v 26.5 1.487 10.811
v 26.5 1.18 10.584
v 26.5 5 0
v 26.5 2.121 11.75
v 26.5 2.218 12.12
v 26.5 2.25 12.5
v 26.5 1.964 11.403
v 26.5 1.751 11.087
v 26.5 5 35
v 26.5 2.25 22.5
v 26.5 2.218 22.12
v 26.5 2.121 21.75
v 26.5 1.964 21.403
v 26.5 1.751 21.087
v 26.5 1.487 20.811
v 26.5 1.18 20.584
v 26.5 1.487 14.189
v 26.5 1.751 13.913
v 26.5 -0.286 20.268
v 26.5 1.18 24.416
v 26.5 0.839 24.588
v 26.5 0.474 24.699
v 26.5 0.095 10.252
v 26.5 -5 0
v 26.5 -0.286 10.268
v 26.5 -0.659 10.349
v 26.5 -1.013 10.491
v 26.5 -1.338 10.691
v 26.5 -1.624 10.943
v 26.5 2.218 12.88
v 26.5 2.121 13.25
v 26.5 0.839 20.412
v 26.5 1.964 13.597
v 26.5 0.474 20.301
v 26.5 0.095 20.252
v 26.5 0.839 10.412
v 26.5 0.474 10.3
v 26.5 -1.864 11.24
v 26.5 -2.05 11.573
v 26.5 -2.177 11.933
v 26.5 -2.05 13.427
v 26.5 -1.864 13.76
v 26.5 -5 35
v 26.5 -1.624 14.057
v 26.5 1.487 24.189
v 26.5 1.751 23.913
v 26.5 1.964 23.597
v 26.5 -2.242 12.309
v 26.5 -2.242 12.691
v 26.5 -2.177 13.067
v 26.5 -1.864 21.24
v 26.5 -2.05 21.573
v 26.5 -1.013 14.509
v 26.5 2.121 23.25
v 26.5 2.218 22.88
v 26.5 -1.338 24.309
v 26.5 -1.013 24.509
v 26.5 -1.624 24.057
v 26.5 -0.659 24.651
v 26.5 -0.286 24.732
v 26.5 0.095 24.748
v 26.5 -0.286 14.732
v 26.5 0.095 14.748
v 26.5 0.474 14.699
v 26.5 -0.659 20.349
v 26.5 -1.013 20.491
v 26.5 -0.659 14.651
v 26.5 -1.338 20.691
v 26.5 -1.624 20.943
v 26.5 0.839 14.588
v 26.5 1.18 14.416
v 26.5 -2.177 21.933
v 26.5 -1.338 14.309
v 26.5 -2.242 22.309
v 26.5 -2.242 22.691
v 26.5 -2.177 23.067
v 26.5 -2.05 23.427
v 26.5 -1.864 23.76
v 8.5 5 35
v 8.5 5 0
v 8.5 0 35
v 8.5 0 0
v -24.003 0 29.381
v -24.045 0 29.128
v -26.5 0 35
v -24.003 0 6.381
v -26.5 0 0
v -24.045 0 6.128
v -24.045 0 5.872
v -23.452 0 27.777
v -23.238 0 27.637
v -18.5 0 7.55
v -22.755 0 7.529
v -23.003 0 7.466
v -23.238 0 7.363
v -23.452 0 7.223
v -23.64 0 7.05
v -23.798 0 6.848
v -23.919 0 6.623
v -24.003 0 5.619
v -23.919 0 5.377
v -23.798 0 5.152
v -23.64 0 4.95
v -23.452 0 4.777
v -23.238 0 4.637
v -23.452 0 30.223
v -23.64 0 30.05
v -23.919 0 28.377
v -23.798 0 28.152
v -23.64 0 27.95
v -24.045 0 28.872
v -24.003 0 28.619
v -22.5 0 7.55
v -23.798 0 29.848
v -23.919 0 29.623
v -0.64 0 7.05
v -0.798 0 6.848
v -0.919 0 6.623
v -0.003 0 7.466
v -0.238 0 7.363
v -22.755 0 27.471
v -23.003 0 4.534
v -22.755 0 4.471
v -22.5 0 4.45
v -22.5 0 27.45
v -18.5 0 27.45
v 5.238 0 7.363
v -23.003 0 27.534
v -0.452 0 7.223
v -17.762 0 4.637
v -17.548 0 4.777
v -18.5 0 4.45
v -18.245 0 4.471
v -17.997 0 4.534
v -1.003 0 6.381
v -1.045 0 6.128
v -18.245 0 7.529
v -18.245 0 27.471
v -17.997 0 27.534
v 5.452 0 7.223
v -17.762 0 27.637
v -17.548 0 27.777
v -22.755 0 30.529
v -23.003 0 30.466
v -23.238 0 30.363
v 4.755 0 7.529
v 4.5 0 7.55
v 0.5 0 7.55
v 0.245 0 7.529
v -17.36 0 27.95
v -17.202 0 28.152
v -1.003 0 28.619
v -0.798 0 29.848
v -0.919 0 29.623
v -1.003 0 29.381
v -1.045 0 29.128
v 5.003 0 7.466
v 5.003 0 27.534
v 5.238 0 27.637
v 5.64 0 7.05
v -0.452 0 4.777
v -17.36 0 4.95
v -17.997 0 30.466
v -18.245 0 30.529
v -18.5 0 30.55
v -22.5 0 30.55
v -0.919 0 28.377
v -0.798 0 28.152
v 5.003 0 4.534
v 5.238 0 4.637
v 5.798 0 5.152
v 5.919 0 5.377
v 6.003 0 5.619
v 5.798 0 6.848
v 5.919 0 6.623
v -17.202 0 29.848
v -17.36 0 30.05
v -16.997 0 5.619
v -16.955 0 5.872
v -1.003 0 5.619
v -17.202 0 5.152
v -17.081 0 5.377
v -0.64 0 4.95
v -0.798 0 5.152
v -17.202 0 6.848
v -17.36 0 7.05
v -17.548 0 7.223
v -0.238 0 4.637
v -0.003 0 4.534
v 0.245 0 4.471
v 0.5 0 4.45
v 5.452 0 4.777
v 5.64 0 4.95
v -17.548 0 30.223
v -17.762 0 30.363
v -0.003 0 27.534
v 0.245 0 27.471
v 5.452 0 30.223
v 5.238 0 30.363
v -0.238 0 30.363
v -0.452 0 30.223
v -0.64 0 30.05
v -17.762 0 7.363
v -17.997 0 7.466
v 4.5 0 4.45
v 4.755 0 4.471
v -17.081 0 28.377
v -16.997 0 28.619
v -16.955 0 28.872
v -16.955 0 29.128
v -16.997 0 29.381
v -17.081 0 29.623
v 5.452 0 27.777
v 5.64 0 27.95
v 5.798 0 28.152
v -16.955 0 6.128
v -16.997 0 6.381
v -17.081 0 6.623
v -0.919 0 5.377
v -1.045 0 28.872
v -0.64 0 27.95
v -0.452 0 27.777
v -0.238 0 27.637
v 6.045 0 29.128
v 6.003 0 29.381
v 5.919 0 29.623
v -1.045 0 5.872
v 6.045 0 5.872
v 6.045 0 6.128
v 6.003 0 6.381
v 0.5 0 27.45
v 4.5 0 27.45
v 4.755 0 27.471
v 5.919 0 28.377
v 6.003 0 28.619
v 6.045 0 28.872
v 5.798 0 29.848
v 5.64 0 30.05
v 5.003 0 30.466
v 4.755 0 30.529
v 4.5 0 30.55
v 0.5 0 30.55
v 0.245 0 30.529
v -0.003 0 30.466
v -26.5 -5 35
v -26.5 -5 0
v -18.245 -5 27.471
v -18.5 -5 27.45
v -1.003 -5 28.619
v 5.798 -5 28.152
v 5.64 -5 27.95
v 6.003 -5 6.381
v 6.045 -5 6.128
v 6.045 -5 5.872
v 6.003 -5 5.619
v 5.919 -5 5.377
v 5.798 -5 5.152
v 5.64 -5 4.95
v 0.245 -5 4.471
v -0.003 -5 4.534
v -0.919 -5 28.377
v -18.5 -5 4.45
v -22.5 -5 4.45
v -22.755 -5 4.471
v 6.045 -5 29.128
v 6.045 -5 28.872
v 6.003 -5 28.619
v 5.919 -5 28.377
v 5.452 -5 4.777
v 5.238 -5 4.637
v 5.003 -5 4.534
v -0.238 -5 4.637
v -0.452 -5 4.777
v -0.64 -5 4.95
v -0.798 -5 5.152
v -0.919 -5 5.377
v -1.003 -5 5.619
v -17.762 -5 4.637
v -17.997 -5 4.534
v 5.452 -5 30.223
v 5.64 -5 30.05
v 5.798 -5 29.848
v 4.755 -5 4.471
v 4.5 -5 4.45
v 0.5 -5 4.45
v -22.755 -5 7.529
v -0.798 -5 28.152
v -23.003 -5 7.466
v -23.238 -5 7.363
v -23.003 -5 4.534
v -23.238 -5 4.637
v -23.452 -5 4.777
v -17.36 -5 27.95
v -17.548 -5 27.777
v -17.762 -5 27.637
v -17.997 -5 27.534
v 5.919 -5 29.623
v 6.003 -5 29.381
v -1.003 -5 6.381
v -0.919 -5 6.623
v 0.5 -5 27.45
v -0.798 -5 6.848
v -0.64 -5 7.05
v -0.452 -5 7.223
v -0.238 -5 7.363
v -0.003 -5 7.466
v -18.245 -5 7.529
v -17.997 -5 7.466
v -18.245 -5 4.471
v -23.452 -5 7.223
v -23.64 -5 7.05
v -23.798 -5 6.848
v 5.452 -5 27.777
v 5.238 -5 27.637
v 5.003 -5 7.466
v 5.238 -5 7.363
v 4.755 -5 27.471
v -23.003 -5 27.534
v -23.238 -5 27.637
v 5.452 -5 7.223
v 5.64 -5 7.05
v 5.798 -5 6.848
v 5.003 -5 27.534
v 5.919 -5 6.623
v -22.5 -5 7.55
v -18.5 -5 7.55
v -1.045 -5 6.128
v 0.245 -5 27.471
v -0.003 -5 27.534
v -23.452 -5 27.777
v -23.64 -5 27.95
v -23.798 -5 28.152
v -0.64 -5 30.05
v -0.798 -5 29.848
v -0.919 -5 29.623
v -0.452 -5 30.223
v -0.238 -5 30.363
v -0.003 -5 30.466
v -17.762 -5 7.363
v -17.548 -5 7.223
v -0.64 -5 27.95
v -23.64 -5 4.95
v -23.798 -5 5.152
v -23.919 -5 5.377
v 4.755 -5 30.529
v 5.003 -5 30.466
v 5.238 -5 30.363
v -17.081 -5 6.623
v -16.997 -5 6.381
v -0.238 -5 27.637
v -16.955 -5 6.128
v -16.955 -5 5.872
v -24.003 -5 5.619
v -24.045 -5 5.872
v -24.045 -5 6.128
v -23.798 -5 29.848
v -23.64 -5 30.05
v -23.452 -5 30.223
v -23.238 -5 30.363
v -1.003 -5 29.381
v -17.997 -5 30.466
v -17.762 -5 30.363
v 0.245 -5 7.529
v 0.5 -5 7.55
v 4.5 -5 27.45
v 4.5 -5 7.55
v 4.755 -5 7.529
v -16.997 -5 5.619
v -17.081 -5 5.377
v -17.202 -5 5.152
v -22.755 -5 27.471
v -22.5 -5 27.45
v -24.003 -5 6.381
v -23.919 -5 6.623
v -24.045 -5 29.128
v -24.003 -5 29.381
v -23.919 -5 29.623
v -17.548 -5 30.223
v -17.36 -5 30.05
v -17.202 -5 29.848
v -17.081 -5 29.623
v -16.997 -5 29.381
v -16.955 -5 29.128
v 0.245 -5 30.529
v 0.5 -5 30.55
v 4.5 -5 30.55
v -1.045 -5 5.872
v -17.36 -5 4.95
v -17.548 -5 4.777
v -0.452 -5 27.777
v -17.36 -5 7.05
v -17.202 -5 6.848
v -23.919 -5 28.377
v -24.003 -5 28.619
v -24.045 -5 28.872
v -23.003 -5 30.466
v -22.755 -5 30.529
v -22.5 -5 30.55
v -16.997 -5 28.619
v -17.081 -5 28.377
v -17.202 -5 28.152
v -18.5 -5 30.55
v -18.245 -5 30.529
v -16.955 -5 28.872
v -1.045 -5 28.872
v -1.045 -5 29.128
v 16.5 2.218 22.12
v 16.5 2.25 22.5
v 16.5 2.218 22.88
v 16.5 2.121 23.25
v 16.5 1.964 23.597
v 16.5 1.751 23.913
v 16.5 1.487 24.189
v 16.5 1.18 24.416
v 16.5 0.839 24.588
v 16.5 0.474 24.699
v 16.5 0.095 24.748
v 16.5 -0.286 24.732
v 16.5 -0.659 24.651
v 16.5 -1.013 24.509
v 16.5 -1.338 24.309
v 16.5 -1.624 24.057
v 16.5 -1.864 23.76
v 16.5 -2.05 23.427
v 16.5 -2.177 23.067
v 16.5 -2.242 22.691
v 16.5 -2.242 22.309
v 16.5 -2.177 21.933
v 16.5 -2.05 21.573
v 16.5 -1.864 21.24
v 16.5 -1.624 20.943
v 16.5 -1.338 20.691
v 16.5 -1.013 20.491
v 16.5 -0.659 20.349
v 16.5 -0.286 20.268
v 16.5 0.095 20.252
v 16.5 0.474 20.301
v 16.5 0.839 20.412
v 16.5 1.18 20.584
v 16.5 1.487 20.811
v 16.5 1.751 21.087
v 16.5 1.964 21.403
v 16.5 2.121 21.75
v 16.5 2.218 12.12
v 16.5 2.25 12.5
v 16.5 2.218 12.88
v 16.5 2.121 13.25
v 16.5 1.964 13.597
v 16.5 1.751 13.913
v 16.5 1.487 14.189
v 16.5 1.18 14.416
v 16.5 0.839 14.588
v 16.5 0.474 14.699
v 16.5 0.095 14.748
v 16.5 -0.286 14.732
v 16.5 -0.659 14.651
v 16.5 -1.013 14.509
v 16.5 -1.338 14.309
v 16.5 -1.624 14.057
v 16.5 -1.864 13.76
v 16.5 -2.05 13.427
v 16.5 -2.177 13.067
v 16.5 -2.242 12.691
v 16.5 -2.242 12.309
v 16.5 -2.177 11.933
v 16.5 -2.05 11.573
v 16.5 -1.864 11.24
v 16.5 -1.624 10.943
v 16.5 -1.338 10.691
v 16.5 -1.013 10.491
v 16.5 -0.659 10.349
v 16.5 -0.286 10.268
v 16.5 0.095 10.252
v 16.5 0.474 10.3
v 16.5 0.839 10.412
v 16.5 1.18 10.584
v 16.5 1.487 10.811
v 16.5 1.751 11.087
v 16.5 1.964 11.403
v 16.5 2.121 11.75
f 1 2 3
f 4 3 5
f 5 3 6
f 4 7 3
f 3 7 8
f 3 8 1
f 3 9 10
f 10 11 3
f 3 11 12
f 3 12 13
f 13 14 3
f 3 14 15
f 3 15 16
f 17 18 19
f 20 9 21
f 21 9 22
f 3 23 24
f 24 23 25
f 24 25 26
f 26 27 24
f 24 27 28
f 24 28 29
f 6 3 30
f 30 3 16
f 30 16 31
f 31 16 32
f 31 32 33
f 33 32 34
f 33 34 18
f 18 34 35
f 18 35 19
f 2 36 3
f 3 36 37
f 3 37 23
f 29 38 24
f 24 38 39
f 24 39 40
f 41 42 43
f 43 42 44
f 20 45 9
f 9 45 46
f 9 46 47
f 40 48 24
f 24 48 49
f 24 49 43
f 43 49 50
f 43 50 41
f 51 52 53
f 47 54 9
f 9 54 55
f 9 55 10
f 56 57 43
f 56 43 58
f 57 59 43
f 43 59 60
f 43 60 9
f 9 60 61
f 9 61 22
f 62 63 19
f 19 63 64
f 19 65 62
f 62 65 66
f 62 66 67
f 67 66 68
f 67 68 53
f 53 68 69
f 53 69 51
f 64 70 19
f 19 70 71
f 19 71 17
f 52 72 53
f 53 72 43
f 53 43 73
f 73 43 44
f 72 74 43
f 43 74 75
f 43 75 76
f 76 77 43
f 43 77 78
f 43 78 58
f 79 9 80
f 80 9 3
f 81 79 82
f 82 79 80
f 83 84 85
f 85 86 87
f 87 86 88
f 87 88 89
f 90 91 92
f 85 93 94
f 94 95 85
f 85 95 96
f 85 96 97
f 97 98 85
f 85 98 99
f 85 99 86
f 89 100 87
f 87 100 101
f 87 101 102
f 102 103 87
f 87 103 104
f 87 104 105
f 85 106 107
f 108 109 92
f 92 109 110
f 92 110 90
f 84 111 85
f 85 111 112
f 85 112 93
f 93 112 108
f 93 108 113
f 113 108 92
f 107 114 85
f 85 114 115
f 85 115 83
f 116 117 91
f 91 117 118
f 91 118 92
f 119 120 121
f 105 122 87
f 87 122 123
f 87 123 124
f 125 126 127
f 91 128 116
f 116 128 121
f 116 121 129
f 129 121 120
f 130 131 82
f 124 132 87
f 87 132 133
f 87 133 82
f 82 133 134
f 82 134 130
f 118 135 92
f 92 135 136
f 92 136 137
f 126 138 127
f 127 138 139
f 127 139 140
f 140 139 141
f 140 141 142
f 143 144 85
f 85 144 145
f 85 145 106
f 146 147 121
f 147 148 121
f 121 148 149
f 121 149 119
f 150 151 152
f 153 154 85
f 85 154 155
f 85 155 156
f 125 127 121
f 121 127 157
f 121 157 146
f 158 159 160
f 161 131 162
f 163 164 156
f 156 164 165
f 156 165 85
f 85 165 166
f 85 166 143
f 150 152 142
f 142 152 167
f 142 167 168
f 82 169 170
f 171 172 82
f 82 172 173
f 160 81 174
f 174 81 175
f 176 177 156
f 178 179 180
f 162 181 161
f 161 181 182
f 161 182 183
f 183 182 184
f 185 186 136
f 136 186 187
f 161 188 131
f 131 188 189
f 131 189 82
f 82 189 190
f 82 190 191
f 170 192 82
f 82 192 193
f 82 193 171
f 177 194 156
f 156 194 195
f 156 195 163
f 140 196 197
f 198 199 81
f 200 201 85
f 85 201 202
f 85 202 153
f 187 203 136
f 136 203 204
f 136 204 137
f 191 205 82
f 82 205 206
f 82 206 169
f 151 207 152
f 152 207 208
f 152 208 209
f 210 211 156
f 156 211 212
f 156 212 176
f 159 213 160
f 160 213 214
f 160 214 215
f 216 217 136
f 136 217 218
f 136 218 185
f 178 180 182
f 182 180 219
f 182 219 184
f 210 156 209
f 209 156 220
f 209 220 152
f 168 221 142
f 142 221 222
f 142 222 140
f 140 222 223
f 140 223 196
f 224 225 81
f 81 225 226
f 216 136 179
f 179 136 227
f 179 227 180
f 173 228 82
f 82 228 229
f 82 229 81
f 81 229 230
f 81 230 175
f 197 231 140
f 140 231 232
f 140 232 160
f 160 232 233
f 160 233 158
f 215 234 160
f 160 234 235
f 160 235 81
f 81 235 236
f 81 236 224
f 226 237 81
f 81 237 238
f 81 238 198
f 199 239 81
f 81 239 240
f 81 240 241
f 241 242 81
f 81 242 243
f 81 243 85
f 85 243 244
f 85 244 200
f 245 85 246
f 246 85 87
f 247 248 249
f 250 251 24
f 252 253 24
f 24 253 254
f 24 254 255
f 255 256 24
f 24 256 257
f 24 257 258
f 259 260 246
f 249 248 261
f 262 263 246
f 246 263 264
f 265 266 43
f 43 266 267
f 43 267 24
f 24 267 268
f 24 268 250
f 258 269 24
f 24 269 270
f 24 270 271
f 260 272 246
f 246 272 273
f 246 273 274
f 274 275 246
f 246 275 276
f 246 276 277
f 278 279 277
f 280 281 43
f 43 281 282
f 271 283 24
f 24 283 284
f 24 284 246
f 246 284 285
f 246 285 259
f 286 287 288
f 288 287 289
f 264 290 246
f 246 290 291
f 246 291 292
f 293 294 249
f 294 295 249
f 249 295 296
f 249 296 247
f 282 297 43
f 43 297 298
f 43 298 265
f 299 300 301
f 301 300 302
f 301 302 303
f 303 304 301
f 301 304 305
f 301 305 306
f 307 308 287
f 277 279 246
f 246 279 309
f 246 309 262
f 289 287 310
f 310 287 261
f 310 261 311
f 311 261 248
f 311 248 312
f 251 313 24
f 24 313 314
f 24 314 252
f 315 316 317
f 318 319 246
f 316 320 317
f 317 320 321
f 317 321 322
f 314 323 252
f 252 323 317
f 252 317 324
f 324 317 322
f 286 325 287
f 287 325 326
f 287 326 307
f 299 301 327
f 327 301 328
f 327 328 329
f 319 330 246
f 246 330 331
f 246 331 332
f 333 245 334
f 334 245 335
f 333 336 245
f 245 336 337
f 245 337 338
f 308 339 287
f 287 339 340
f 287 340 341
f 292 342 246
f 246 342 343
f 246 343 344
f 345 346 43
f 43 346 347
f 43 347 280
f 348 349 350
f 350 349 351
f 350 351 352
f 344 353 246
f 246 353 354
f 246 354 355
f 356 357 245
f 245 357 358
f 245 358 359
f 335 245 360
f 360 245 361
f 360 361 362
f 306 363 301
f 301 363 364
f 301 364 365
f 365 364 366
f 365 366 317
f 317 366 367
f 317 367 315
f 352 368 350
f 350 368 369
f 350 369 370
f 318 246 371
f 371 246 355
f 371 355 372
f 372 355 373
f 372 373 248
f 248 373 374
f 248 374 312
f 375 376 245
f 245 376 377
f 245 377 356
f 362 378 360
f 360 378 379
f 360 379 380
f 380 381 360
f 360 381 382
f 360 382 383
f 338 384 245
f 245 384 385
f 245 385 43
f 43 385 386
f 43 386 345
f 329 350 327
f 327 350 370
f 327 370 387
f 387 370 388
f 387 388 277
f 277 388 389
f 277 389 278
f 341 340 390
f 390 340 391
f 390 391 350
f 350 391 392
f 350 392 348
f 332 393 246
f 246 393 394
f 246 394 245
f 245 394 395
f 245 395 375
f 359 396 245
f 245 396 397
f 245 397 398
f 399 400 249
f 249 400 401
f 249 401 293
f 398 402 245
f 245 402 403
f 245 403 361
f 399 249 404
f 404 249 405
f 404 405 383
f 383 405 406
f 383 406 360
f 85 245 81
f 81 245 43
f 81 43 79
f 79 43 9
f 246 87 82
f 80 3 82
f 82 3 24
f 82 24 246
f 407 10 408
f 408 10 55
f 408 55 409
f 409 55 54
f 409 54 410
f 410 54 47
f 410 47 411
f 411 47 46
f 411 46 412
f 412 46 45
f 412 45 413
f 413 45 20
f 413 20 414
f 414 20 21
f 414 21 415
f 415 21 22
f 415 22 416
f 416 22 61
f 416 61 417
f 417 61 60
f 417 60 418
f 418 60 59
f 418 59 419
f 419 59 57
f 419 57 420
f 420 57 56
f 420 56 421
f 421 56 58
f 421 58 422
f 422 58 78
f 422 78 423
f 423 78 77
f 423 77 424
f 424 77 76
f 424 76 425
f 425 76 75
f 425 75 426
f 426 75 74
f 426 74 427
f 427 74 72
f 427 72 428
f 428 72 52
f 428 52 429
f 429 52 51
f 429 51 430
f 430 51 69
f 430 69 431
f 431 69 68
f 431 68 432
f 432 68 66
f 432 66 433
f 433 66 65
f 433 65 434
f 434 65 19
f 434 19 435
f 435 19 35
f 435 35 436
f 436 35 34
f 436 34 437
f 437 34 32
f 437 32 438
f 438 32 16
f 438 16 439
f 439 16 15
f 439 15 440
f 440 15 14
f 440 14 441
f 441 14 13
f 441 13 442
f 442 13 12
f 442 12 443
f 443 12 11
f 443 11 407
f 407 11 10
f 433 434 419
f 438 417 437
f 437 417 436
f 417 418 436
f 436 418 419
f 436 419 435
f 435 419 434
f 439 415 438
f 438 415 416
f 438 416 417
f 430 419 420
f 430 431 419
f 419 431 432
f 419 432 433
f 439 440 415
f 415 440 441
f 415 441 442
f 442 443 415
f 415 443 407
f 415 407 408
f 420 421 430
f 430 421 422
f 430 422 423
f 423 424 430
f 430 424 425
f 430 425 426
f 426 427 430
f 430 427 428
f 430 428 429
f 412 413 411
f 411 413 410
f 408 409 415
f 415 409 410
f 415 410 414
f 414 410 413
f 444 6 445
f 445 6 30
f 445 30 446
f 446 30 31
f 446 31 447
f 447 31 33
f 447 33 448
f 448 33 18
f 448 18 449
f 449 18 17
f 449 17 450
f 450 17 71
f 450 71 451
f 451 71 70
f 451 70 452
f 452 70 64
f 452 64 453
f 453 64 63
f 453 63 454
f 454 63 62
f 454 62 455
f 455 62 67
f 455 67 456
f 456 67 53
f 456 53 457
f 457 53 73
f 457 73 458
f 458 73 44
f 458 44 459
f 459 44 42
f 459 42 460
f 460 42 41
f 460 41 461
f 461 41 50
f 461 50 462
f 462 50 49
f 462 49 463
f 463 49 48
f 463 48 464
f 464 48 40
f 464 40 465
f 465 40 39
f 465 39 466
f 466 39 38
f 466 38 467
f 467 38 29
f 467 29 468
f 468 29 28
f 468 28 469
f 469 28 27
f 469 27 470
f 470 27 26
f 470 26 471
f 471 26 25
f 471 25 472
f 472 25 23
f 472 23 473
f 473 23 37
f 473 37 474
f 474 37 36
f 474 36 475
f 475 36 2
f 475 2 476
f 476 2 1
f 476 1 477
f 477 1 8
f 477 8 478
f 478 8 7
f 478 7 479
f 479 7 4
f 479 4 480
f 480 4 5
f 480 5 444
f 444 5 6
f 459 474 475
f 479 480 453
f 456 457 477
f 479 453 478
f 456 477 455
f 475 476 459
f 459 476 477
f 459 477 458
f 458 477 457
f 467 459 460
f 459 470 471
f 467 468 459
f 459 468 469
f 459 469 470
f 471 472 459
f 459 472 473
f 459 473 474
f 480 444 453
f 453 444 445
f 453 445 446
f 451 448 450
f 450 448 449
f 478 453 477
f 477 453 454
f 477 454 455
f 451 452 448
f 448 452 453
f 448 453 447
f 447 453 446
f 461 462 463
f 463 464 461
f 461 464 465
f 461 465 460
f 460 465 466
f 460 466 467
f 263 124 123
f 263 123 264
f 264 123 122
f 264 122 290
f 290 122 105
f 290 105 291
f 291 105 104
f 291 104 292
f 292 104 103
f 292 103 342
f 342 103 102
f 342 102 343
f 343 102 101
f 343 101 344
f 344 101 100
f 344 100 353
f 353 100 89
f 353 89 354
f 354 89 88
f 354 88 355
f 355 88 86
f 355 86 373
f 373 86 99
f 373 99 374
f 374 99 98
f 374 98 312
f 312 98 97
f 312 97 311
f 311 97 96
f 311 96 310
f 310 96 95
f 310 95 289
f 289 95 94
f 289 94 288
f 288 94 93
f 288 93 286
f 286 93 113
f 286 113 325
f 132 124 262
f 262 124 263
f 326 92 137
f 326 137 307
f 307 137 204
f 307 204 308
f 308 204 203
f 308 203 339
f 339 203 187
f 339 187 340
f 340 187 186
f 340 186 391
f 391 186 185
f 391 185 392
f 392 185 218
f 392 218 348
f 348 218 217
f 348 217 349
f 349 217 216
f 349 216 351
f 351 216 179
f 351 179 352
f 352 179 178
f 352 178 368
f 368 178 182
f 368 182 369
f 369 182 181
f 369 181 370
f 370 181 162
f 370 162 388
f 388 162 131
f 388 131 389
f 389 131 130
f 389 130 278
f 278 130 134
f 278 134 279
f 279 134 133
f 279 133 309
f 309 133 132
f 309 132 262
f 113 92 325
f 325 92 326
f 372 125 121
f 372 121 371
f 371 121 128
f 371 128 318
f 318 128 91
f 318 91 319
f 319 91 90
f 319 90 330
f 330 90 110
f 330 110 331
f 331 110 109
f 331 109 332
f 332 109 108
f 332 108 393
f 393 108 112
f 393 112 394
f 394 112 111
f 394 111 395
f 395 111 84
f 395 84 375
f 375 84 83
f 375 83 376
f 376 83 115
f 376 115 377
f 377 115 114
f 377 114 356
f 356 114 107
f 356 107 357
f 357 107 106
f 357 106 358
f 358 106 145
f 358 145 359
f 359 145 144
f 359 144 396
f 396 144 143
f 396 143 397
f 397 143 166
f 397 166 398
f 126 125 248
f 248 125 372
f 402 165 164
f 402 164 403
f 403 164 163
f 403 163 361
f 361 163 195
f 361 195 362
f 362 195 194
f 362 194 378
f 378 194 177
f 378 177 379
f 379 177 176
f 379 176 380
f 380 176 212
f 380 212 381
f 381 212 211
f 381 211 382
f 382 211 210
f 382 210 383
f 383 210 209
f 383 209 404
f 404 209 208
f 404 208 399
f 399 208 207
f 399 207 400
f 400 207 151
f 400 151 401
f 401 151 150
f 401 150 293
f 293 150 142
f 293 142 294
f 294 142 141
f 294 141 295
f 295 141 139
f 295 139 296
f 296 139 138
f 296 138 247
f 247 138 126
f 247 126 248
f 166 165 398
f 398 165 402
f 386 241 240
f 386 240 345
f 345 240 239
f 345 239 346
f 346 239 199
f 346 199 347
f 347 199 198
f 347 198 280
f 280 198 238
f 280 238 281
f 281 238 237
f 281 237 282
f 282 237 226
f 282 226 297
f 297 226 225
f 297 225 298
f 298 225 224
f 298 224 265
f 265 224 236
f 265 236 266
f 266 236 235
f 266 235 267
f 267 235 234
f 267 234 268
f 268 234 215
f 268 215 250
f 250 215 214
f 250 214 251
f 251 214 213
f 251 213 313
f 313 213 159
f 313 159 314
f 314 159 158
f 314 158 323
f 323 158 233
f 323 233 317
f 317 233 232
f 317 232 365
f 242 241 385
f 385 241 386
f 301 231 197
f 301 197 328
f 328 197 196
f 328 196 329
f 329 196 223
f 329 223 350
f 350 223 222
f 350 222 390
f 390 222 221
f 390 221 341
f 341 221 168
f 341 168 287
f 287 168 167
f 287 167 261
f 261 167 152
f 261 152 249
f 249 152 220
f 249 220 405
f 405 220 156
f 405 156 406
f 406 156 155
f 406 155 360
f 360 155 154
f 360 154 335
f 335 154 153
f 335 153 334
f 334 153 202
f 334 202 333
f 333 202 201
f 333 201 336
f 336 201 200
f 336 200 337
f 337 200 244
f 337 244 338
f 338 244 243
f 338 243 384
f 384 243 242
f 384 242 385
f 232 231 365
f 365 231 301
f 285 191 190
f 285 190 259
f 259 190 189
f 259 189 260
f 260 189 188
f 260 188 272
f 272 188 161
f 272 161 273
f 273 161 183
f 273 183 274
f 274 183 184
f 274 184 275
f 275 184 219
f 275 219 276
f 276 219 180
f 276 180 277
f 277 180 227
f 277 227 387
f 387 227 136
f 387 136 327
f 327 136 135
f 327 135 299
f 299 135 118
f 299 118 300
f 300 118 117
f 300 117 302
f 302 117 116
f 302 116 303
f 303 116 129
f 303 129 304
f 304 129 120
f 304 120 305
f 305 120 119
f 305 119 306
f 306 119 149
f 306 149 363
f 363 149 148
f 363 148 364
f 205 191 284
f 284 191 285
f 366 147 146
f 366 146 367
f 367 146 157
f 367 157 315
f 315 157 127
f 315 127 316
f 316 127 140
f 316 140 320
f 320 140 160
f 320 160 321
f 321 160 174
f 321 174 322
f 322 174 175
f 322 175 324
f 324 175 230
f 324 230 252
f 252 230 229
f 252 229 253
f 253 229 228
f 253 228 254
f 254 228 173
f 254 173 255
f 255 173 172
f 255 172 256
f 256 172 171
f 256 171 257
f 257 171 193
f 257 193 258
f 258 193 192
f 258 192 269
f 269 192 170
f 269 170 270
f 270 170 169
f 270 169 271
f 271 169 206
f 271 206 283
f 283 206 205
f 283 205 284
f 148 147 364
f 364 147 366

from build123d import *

# Parameters (mm, degrees)
BOSS_EXTRUDE1_DEPTH = 35
SKETCH2_R           = 2.25
CUT_EXTRUDE1_DEPTH  = 10
CUT_EXTRUDE2_DEPTH  = 5


with BuildPart() as part:
    # Sketch1 → Boss-Extrude1 (new body)
    with BuildSketch(Plane.XY):
        Polygon((8.5, 5), (8.5, 0), (-26.5, 0), (-26.5, -5), (26.5, -5), (26.5, 5), align=None)
    extrude(amount=BOSS_EXTRUDE1_DEPTH)

    # Sketch2 → Cut-Extrude1 (cut)
    with BuildSketch(Plane(origin=(26.5, 0, 0), x_dir=(0, 0, -1), z_dir=(1, 0, 0))):
        with Locations((-22.5, 0)):
            Circle(SKETCH2_R)
        with Locations((-12.5, 0)):
            Circle(SKETCH2_R)
    extrude(amount=-CUT_EXTRUDE1_DEPTH, mode=Mode.SUBTRACT)

    # Sketch3 → Cut-Extrude2 (cut)
    with BuildSketch(Plane(origin=(0, 0, 0), x_dir=(1, 0, 0), z_dir=(0, 1, 0))):
        with BuildLine():
            Line((-22.5, -7.55), (-18.5, -7.55))
            ThreePointArc((-18.5, -7.55), (-16.95, -6), (-18.5, -4.45))
            Line((-18.5, -4.45), (-22.5, -4.45))
            ThreePointArc((-22.5, -4.45), (-24.05, -6), (-22.5, -7.55))
        make_face()
        with BuildLine():
            Line((-22.5, -30.55), (-18.5, -30.55))
            ThreePointArc((-18.5, -30.55), (-16.95, -29), (-18.5, -27.45))
            Line((-18.5, -27.45), (-22.5, -27.45))
            ThreePointArc((-22.5, -27.45), (-24.05, -29), (-22.5, -30.55))
        make_face()
        with BuildLine():
            Line((4.5, -4.45), (0.5, -4.45))
            ThreePointArc((0.5, -4.45), (-1.05, -6), (0.5, -7.55))
            Line((0.5, -7.55), (4.5, -7.55))
            ThreePointArc((4.5, -7.55), (6.05, -6), (4.5, -4.45))
        make_face()
        with BuildLine():
            Line((4.5, -27.45), (0.5, -27.45))
            ThreePointArc((0.5, -27.45), (-1.05, -29), (0.5, -30.55))
            Line((0.5, -30.55), (4.5, -30.55))
            ThreePointArc((4.5, -30.55), (6.05, -29), (4.5, -27.45))
        make_face()
    extrude(amount=-CUT_EXTRUDE2_DEPTH, mode=Mode.SUBTRACT)


solid = part.part
